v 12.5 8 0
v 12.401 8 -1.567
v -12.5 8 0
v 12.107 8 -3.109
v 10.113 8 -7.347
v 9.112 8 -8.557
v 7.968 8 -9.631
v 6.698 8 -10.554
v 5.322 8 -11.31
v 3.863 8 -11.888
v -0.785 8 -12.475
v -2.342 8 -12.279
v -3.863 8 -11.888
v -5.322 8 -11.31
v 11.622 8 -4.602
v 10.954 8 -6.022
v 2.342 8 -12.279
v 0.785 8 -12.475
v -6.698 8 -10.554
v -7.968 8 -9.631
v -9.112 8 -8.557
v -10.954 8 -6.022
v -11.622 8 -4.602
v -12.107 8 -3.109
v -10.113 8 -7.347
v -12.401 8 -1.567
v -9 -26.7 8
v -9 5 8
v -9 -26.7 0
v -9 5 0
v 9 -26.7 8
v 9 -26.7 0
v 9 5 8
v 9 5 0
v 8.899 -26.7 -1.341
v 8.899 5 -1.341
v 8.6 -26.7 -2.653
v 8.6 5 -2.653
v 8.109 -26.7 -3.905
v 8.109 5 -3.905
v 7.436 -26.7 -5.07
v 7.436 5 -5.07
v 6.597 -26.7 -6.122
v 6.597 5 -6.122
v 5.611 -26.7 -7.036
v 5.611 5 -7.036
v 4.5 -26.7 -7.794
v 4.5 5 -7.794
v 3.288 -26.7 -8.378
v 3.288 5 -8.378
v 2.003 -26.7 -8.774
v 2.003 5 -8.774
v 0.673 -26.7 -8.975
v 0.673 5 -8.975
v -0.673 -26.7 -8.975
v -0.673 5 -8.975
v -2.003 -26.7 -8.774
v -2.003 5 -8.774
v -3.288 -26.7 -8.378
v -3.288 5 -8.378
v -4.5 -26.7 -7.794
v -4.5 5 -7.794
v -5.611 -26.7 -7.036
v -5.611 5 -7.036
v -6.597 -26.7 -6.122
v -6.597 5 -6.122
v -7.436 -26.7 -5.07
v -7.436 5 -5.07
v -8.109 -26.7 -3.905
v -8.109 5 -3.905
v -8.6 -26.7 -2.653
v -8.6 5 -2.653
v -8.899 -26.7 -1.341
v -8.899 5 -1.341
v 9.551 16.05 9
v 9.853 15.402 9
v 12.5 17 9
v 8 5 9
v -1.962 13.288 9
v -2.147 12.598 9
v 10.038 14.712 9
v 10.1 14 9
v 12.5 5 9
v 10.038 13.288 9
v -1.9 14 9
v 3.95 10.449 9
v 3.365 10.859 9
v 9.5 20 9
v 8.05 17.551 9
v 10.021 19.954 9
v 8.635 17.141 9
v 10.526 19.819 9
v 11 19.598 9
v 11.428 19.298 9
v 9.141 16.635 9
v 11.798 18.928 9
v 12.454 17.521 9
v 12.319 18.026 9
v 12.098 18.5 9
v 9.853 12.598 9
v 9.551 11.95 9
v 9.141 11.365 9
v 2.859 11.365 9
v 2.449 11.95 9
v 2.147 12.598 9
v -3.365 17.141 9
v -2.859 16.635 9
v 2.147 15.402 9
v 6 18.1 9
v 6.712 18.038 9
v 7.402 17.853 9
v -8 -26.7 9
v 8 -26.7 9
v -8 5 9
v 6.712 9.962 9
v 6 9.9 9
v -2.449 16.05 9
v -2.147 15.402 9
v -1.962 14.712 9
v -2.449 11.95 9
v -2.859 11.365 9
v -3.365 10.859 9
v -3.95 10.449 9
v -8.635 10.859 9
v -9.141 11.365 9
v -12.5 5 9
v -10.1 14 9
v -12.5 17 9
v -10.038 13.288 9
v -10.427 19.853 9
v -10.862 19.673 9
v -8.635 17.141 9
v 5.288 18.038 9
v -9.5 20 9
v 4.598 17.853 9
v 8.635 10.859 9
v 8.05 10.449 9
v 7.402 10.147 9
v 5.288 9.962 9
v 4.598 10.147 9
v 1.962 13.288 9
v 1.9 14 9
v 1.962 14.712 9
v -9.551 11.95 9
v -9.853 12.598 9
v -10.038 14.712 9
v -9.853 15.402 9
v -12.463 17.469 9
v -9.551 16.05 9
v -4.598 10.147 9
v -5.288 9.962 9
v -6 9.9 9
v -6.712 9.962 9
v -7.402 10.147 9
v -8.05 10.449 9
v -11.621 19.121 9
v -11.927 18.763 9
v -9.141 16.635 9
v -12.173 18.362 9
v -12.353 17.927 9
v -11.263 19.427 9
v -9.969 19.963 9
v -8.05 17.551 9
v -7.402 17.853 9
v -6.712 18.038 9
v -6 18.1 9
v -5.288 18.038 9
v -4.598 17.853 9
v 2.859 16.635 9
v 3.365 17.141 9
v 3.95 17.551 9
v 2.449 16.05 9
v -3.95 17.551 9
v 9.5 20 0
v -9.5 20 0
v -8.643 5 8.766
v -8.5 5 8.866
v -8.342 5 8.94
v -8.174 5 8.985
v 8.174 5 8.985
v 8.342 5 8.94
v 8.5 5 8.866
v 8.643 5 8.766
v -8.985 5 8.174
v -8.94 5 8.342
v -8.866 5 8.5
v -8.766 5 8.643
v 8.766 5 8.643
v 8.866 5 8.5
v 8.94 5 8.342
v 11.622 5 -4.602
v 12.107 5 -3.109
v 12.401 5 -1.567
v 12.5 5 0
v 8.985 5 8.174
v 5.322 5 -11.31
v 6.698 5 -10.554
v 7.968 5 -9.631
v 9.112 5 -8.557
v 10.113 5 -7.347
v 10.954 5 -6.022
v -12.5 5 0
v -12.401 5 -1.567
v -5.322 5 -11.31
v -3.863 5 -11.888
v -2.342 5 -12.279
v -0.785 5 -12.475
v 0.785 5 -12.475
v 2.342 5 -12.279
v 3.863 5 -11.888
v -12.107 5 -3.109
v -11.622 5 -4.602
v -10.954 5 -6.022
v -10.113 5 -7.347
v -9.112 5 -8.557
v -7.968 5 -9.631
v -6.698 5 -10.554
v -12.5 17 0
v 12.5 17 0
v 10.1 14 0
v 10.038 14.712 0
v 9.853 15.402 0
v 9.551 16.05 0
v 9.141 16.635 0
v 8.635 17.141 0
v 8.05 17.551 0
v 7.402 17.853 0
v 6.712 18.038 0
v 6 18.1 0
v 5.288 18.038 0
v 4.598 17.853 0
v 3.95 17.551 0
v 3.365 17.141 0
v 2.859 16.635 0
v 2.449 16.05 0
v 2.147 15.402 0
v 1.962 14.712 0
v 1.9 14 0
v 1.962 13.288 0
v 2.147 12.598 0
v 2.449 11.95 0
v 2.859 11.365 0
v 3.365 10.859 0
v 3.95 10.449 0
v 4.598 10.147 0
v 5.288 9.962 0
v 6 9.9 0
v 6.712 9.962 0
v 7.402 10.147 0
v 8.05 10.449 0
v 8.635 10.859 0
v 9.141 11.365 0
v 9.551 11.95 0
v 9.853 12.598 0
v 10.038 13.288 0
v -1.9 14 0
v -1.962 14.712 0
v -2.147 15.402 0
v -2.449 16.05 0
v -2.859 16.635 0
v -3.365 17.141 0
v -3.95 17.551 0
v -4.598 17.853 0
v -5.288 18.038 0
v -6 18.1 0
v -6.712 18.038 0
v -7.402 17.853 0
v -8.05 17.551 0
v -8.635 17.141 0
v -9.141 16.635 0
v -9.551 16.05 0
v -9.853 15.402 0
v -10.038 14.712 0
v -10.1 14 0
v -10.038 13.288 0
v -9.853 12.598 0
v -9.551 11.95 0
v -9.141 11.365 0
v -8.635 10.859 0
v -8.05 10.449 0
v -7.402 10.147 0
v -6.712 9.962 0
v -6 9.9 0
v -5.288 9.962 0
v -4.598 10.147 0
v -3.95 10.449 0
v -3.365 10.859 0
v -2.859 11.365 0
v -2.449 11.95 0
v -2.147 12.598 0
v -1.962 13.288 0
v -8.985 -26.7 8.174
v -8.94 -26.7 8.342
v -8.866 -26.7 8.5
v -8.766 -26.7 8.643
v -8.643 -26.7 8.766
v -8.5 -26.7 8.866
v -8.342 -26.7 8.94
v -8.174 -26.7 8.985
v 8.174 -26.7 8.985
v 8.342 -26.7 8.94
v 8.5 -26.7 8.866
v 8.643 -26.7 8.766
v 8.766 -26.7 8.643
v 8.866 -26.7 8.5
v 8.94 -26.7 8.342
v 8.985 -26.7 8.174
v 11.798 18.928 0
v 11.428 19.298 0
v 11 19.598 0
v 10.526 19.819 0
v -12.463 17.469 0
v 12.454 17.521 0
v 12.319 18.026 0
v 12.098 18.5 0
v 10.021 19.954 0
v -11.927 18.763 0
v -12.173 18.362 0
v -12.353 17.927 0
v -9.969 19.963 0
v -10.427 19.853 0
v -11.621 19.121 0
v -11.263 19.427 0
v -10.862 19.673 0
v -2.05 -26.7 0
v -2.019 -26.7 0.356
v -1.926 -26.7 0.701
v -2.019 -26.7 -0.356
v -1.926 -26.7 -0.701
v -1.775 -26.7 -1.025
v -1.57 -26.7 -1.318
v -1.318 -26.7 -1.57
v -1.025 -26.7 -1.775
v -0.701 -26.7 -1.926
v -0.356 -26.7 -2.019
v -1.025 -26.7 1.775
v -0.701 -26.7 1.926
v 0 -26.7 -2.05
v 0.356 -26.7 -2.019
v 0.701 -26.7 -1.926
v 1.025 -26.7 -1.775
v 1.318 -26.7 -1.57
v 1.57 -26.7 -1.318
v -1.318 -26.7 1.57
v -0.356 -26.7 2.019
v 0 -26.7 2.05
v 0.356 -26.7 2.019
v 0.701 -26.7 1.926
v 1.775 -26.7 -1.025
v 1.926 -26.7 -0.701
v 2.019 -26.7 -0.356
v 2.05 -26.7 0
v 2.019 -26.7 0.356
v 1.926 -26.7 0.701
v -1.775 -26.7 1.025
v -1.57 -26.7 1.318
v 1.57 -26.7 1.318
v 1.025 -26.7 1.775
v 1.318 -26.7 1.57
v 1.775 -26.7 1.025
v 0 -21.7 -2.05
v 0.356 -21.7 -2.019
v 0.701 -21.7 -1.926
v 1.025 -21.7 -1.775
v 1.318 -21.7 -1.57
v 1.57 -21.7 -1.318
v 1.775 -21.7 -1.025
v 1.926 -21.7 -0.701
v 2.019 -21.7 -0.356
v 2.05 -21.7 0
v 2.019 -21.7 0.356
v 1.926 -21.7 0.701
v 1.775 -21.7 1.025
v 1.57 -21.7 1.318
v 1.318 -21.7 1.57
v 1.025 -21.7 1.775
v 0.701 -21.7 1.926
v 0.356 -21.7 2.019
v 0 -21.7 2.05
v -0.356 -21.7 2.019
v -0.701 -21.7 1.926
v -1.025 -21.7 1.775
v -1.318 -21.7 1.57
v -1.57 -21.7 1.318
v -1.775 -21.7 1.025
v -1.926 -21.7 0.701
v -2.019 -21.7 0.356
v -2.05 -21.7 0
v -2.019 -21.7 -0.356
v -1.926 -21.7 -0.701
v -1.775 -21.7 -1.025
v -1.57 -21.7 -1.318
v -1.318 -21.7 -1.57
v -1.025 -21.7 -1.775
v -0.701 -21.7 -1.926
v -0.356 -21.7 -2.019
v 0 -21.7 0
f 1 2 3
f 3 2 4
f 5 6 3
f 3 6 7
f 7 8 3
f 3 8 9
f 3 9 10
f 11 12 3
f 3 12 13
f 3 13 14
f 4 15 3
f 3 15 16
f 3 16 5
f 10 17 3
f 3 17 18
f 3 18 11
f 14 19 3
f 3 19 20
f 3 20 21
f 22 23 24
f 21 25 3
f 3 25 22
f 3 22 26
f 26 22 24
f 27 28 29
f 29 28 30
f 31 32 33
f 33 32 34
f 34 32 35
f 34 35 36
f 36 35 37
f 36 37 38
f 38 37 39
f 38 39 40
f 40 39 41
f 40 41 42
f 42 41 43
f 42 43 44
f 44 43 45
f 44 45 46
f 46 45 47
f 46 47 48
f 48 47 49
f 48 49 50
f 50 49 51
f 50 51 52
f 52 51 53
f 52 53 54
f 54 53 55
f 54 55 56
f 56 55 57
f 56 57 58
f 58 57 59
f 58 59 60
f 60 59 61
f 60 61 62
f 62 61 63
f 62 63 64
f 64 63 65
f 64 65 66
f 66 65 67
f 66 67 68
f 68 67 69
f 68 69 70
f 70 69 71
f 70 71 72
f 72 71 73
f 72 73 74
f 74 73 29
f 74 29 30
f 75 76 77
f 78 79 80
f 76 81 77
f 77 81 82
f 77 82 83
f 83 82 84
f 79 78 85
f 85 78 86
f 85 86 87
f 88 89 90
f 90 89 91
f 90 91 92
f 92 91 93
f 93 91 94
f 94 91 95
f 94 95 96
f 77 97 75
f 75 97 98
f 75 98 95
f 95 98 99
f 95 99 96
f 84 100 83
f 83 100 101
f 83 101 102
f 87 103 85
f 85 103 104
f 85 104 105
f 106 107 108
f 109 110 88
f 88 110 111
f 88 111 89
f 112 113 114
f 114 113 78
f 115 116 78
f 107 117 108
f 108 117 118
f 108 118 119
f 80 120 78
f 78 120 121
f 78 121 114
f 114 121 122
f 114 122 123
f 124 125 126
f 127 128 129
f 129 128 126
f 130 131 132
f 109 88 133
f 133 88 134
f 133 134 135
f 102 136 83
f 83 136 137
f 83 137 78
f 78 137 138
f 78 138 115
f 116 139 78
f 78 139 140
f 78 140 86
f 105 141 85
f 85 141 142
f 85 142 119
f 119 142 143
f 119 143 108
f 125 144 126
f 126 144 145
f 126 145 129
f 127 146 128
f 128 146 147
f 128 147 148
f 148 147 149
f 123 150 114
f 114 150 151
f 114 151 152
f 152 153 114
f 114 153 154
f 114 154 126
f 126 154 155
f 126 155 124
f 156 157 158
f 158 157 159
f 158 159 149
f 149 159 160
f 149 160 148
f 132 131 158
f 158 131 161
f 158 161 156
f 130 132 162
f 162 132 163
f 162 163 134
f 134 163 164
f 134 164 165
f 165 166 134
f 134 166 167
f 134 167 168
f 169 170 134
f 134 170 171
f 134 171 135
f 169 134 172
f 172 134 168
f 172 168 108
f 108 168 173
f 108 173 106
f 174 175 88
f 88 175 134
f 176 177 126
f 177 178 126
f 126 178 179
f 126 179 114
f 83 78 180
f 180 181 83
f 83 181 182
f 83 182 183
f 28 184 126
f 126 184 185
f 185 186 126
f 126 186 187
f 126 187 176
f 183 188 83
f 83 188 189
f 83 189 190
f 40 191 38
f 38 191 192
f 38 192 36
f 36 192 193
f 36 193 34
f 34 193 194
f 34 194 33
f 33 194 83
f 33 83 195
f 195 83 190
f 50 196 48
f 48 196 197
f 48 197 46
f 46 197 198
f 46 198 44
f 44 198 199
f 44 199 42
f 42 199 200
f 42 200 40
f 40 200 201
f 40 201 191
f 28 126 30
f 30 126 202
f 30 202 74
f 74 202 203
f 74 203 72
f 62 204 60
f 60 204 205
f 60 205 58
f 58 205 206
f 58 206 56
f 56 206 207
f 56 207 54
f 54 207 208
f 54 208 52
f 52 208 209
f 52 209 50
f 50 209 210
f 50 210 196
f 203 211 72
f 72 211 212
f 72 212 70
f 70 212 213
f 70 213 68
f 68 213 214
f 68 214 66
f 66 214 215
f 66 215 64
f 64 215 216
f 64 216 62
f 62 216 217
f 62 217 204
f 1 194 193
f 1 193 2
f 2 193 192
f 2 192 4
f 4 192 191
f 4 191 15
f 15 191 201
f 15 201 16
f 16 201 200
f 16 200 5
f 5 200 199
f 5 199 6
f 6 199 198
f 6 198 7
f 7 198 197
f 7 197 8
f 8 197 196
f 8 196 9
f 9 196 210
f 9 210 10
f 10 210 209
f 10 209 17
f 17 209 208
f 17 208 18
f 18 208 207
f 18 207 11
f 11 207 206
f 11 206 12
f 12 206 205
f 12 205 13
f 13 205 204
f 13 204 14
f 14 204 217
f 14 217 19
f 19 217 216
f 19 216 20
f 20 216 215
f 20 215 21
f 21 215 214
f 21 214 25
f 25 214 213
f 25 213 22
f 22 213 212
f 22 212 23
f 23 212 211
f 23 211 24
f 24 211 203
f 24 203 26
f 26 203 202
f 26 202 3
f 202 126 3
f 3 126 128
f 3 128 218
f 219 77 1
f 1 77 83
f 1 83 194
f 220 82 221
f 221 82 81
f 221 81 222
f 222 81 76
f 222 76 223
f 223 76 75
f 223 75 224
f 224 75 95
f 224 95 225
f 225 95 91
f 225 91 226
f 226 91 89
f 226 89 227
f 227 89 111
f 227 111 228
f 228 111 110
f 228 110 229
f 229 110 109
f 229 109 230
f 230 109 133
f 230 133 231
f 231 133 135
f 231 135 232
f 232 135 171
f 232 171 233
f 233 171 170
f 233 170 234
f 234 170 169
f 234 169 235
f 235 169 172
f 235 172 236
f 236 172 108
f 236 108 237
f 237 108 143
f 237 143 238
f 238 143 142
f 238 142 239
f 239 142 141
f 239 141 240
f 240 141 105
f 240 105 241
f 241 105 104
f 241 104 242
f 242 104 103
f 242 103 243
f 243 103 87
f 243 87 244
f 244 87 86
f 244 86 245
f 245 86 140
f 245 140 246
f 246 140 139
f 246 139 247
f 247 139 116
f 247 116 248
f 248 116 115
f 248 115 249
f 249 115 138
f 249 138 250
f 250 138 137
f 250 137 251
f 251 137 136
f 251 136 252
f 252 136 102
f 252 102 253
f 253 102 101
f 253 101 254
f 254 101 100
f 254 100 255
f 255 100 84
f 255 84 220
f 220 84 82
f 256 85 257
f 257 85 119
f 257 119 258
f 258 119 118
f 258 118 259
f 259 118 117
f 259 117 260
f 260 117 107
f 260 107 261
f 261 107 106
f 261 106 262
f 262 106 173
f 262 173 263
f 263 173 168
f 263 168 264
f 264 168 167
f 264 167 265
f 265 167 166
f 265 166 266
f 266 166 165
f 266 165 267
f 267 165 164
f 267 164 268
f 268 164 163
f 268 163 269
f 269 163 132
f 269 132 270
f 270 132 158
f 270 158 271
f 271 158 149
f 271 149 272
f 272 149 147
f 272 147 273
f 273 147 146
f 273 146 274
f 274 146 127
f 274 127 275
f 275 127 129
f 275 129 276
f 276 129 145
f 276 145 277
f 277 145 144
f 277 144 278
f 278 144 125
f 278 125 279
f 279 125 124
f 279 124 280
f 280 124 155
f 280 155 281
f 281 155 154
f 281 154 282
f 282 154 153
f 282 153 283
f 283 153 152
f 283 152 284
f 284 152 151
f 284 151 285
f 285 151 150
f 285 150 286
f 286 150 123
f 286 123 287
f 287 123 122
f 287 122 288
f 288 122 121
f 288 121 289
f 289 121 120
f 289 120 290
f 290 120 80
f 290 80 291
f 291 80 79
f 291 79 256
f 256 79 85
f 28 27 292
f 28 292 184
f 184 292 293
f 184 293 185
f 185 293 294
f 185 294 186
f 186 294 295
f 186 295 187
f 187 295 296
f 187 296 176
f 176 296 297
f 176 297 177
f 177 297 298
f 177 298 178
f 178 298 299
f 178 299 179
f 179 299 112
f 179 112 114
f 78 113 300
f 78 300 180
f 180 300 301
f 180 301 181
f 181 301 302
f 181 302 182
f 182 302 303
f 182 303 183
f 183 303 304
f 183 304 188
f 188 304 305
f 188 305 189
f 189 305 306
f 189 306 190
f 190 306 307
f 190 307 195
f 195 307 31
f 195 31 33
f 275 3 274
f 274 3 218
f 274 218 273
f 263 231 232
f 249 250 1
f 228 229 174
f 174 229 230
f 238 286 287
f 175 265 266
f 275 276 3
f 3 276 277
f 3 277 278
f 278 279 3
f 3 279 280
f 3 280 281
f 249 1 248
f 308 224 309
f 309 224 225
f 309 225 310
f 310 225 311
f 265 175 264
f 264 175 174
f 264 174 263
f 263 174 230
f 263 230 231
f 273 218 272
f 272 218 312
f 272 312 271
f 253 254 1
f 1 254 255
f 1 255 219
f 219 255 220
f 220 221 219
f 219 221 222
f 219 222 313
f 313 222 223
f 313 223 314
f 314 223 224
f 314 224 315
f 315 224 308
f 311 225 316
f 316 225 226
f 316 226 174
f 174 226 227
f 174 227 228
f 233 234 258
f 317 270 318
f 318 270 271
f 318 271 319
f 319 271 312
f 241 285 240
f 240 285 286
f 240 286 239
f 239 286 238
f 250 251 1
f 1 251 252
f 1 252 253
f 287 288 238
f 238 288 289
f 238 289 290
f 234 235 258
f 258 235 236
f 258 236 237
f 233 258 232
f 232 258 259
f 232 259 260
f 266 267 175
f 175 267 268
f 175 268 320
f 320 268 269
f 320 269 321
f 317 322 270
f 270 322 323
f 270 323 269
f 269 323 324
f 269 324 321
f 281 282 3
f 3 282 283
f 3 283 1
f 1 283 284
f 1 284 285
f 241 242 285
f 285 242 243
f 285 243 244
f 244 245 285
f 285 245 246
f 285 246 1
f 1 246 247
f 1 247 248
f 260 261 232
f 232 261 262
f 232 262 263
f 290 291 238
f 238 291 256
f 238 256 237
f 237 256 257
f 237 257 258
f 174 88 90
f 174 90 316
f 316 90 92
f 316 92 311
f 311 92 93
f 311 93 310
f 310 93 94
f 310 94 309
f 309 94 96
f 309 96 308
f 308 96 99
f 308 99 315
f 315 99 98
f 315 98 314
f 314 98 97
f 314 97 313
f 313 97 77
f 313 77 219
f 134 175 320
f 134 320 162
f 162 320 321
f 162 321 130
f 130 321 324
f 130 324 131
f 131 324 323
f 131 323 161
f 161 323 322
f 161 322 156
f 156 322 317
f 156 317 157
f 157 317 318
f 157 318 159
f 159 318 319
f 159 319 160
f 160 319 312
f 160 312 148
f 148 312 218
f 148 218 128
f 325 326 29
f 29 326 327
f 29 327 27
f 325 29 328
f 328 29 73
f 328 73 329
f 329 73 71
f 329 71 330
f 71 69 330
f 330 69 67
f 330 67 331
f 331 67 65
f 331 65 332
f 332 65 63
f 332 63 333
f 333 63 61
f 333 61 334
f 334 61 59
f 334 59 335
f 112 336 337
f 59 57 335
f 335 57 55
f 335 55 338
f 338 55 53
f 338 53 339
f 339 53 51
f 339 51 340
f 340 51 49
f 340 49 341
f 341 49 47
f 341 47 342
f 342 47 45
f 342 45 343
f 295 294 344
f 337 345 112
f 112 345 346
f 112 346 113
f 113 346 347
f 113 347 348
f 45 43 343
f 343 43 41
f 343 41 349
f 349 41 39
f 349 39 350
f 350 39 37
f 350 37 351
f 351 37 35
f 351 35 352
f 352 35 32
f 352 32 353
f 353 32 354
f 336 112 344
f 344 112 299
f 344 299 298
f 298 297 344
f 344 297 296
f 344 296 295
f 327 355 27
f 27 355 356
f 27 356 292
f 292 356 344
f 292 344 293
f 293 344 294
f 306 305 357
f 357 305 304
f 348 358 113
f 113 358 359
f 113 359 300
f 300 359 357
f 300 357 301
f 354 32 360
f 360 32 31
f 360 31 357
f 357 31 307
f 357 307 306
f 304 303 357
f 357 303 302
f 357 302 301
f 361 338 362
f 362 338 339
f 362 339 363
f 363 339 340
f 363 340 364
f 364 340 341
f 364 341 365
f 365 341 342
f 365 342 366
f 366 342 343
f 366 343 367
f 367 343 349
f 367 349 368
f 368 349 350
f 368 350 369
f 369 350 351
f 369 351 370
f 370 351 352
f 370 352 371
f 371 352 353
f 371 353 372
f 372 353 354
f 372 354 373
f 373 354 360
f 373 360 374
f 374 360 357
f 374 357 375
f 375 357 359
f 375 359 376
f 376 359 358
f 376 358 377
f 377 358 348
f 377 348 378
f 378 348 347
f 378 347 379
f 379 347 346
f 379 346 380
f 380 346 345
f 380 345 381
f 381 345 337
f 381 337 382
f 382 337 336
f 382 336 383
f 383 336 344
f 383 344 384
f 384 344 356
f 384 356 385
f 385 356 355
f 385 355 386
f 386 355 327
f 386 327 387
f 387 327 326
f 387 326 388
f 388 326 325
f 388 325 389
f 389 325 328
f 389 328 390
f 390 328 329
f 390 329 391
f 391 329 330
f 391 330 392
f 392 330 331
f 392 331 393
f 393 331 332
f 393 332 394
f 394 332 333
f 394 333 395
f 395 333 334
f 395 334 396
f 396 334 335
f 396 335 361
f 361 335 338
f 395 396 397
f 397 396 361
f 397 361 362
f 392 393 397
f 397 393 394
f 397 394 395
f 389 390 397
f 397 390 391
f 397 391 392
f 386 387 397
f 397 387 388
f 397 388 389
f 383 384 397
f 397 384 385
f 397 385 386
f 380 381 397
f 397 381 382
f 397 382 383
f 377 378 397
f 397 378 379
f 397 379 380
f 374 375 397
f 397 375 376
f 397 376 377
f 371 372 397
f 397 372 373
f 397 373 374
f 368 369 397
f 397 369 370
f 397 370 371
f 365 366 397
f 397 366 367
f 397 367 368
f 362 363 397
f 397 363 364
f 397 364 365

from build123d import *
from build123d.topology import SkipClean

# Parameters (mm, degrees)
SKETCH_1_R          = 7.6
EXTRUDE_1_DEPTH     = 5
SKETCH_2_W          = 18
SKETCH_2_H          = 5
EXTRUDE_2_DEPTH     = 15
EXTRUDE_3_DEPTH     = 3
SKETCH_5_W          = 3.5
SKETCH_5_H          = 5
EXTRUDE_4_DEPTH     = 12
SKETCH_3_R          = 4.1
CUT_EXTRUDE_1_DEPTH = 32.913946794
FILLET_4_R          = 1
SKETCH_6_W          = 25
SKETCH_6_H          = 12
SKETCH_6_R          = 4.1
EXTRUDE_5_DEPTH     = 4
FILLET_5_R          = 3
SKETCH_7_R          = 8.4
EXTRUDE_6_DEPTH     = 26.7
SKETCH_9_R          = 8.4
EXTRUDE_8_DEPTH     = 31.7
SKETCH_10_R         = 2.05
CUT_EXTRUDE_2_DEPTH = 5


with BuildPart() as part:
    # ｽｹｯﾁ1 → ﾎﾞｽ - 押し出し1 (new body)
    with BuildSketch(Plane(origin=(0, 0, 0), x_dir=(1, 0, 0), z_dir=(0, 1, 0))):
        with BuildLine():
            Line((-9, 0), (-9, -9))
            Line((-9, -9), (9, -9))
            Line((9, -9), (9, 0))
            ThreePointArc((9, 0), (0, 9), (-9, 0))
        make_face()
        with Locations(Location((0, 0, 0), (0, 0, 270))):
            Circle(SKETCH_1_R, mode=Mode.SUBTRACT)
    extrude(amount=EXTRUDE_1_DEPTH)

    # ｽｹｯﾁ2 → ﾎﾞｽ - 押し出し2 (add)
    with BuildSketch(Plane(origin=(0, 5, 0), x_dir=(1, 0, 0), z_dir=(0, 1, 0))):
        with Locations((0, -6.5)):
            Rectangle(SKETCH_2_W, SKETCH_2_H)
    extrude(amount=EXTRUDE_2_DEPTH)

    # ｽｹｯﾁ4 → ﾎﾞｽ - 押し出し3 (add)
    with BuildSketch(Plane(origin=(0, 5, 0), x_dir=(1, 0, 0), z_dir=(0, 1, 0))):
        with BuildLine():
            Line((-12.5, 0), (-12.5, -9))
            Line((-12.5, -9), (12.5, -9))
            Line((12.5, -9), (12.5, 0))
            ThreePointArc((12.5, 0), (0, 12.5), (-12.5, 0))
        make_face()
    extrude(amount=EXTRUDE_3_DEPTH)

    # ｽｹｯﾁ5 → ﾎﾞｽ - 押し出し4 (add)
    with BuildSketch(Plane(origin=(0, 8, 0), x_dir=(1, 0, 0), z_dir=(0, 1, 0))):
        with Locations((-10.75, -6.5)):
            Rectangle(SKETCH_5_W, SKETCH_5_H)
        with Locations((10.75, -6.5)):
            Rectangle(SKETCH_5_W, SKETCH_5_H)
    extrude(amount=EXTRUDE_4_DEPTH)

    # ｽｹｯﾁ3 → ｶｯﾄ - 押し出し1 (cut, through all)
    with BuildSketch(Plane.XY.offset(9)):
        with Locations((-6, 14)):
            Circle(SKETCH_3_R)
        with Locations((6, 14)):
            Circle(SKETCH_3_R)
    extrude(amount=-CUT_EXTRUDE_1_DEPTH, mode=Mode.SUBTRACT)

    # ﾌｨﾚｯﾄ4
    fillet_4_edges = [part.edges().sort_by_distance(p)[0] for p in [
        (9, 2.5, 9),
        (-9, 2.5, 9),
    ]]
    fillet(fillet_4_edges, radius=FILLET_4_R)

    # ｽｹｯﾁ6 → ﾎﾞｽ - 押し出し5 (add)
    with SkipClean():  # the faces are left unmerged after this step: merging them gives an invalid solid
        with BuildSketch(Plane(origin=(0, 0, 4), x_dir=(-1, 0, 0), z_dir=(0, 0, -1))):
            with Locations((0, 14)):
                Rectangle(SKETCH_6_W, SKETCH_6_H)
            with Locations((-6, 14)):
                Circle(SKETCH_6_R, mode=Mode.SUBTRACT)
            with Locations(Location((6, 14, 0), (0, 0, 180))):
                Circle(SKETCH_6_R, mode=Mode.SUBTRACT)
        extrude(amount=EXTRUDE_5_DEPTH)
    add(part.part.scale(1), mode=Mode.REPLACE)  # the faces are merged on a copy

    # ﾌｨﾚｯﾄ5
    fillet_5_edges = [part.edges().sort_by_distance(p)[0] for p in [
        (-12.5, 20, 4.5),
        (12.5, 20, 4.5),
    ]]
    fillet(fillet_5_edges, radius=FILLET_5_R)

    # ｽｹｯﾁ7 → ﾎﾞｽ - 押し出し6 (add)
    with SkipClean():  # the faces are left unmerged after this step: merging them gives an invalid solid
        with BuildSketch(Plane.XZ):
            with BuildLine():
                Line((8, 9), (-8, 9))
                ThreePointArc((-8, 9), (-8.707106781, 8.707106781), (-9, 8))
                Line((-9, 8), (-9, 0))
                ThreePointArc((-9, 0), (0, -9), (9, 0))
                Line((9, 0), (9, 8))
                ThreePointArc((9, 8), (8.707106781, 8.707106781), (8, 9))
            make_face()
            with Locations(Location((0, 0, 0), (0, 0, 270))):
                Circle(SKETCH_7_R, mode=Mode.SUBTRACT)
        extrude(amount=EXTRUDE_6_DEPTH)

    # ｽｹｯﾁ9 → ﾎﾞｽ - 押し出し8 (add)
    with SkipClean():  # the faces are left unmerged after this step: merging them gives an invalid solid
        with BuildSketch(Plane.XZ.offset(-5)):
            Circle(SKETCH_9_R)
        extrude(amount=EXTRUDE_8_DEPTH)

    # ｽｹｯﾁ10 → ｶｯﾄ - 押し出し2 (cut)
    with SkipClean():  # the faces are left unmerged after this step: merging them gives an invalid solid
        with BuildSketch(Plane.XZ.offset(26.7)):
            with Locations(Location((0, 0, 0), (0, 0, 270))):
                Circle(SKETCH_10_R)
        extrude(amount=-CUT_EXTRUDE_2_DEPTH, mode=Mode.SUBTRACT)


solid = part.part
